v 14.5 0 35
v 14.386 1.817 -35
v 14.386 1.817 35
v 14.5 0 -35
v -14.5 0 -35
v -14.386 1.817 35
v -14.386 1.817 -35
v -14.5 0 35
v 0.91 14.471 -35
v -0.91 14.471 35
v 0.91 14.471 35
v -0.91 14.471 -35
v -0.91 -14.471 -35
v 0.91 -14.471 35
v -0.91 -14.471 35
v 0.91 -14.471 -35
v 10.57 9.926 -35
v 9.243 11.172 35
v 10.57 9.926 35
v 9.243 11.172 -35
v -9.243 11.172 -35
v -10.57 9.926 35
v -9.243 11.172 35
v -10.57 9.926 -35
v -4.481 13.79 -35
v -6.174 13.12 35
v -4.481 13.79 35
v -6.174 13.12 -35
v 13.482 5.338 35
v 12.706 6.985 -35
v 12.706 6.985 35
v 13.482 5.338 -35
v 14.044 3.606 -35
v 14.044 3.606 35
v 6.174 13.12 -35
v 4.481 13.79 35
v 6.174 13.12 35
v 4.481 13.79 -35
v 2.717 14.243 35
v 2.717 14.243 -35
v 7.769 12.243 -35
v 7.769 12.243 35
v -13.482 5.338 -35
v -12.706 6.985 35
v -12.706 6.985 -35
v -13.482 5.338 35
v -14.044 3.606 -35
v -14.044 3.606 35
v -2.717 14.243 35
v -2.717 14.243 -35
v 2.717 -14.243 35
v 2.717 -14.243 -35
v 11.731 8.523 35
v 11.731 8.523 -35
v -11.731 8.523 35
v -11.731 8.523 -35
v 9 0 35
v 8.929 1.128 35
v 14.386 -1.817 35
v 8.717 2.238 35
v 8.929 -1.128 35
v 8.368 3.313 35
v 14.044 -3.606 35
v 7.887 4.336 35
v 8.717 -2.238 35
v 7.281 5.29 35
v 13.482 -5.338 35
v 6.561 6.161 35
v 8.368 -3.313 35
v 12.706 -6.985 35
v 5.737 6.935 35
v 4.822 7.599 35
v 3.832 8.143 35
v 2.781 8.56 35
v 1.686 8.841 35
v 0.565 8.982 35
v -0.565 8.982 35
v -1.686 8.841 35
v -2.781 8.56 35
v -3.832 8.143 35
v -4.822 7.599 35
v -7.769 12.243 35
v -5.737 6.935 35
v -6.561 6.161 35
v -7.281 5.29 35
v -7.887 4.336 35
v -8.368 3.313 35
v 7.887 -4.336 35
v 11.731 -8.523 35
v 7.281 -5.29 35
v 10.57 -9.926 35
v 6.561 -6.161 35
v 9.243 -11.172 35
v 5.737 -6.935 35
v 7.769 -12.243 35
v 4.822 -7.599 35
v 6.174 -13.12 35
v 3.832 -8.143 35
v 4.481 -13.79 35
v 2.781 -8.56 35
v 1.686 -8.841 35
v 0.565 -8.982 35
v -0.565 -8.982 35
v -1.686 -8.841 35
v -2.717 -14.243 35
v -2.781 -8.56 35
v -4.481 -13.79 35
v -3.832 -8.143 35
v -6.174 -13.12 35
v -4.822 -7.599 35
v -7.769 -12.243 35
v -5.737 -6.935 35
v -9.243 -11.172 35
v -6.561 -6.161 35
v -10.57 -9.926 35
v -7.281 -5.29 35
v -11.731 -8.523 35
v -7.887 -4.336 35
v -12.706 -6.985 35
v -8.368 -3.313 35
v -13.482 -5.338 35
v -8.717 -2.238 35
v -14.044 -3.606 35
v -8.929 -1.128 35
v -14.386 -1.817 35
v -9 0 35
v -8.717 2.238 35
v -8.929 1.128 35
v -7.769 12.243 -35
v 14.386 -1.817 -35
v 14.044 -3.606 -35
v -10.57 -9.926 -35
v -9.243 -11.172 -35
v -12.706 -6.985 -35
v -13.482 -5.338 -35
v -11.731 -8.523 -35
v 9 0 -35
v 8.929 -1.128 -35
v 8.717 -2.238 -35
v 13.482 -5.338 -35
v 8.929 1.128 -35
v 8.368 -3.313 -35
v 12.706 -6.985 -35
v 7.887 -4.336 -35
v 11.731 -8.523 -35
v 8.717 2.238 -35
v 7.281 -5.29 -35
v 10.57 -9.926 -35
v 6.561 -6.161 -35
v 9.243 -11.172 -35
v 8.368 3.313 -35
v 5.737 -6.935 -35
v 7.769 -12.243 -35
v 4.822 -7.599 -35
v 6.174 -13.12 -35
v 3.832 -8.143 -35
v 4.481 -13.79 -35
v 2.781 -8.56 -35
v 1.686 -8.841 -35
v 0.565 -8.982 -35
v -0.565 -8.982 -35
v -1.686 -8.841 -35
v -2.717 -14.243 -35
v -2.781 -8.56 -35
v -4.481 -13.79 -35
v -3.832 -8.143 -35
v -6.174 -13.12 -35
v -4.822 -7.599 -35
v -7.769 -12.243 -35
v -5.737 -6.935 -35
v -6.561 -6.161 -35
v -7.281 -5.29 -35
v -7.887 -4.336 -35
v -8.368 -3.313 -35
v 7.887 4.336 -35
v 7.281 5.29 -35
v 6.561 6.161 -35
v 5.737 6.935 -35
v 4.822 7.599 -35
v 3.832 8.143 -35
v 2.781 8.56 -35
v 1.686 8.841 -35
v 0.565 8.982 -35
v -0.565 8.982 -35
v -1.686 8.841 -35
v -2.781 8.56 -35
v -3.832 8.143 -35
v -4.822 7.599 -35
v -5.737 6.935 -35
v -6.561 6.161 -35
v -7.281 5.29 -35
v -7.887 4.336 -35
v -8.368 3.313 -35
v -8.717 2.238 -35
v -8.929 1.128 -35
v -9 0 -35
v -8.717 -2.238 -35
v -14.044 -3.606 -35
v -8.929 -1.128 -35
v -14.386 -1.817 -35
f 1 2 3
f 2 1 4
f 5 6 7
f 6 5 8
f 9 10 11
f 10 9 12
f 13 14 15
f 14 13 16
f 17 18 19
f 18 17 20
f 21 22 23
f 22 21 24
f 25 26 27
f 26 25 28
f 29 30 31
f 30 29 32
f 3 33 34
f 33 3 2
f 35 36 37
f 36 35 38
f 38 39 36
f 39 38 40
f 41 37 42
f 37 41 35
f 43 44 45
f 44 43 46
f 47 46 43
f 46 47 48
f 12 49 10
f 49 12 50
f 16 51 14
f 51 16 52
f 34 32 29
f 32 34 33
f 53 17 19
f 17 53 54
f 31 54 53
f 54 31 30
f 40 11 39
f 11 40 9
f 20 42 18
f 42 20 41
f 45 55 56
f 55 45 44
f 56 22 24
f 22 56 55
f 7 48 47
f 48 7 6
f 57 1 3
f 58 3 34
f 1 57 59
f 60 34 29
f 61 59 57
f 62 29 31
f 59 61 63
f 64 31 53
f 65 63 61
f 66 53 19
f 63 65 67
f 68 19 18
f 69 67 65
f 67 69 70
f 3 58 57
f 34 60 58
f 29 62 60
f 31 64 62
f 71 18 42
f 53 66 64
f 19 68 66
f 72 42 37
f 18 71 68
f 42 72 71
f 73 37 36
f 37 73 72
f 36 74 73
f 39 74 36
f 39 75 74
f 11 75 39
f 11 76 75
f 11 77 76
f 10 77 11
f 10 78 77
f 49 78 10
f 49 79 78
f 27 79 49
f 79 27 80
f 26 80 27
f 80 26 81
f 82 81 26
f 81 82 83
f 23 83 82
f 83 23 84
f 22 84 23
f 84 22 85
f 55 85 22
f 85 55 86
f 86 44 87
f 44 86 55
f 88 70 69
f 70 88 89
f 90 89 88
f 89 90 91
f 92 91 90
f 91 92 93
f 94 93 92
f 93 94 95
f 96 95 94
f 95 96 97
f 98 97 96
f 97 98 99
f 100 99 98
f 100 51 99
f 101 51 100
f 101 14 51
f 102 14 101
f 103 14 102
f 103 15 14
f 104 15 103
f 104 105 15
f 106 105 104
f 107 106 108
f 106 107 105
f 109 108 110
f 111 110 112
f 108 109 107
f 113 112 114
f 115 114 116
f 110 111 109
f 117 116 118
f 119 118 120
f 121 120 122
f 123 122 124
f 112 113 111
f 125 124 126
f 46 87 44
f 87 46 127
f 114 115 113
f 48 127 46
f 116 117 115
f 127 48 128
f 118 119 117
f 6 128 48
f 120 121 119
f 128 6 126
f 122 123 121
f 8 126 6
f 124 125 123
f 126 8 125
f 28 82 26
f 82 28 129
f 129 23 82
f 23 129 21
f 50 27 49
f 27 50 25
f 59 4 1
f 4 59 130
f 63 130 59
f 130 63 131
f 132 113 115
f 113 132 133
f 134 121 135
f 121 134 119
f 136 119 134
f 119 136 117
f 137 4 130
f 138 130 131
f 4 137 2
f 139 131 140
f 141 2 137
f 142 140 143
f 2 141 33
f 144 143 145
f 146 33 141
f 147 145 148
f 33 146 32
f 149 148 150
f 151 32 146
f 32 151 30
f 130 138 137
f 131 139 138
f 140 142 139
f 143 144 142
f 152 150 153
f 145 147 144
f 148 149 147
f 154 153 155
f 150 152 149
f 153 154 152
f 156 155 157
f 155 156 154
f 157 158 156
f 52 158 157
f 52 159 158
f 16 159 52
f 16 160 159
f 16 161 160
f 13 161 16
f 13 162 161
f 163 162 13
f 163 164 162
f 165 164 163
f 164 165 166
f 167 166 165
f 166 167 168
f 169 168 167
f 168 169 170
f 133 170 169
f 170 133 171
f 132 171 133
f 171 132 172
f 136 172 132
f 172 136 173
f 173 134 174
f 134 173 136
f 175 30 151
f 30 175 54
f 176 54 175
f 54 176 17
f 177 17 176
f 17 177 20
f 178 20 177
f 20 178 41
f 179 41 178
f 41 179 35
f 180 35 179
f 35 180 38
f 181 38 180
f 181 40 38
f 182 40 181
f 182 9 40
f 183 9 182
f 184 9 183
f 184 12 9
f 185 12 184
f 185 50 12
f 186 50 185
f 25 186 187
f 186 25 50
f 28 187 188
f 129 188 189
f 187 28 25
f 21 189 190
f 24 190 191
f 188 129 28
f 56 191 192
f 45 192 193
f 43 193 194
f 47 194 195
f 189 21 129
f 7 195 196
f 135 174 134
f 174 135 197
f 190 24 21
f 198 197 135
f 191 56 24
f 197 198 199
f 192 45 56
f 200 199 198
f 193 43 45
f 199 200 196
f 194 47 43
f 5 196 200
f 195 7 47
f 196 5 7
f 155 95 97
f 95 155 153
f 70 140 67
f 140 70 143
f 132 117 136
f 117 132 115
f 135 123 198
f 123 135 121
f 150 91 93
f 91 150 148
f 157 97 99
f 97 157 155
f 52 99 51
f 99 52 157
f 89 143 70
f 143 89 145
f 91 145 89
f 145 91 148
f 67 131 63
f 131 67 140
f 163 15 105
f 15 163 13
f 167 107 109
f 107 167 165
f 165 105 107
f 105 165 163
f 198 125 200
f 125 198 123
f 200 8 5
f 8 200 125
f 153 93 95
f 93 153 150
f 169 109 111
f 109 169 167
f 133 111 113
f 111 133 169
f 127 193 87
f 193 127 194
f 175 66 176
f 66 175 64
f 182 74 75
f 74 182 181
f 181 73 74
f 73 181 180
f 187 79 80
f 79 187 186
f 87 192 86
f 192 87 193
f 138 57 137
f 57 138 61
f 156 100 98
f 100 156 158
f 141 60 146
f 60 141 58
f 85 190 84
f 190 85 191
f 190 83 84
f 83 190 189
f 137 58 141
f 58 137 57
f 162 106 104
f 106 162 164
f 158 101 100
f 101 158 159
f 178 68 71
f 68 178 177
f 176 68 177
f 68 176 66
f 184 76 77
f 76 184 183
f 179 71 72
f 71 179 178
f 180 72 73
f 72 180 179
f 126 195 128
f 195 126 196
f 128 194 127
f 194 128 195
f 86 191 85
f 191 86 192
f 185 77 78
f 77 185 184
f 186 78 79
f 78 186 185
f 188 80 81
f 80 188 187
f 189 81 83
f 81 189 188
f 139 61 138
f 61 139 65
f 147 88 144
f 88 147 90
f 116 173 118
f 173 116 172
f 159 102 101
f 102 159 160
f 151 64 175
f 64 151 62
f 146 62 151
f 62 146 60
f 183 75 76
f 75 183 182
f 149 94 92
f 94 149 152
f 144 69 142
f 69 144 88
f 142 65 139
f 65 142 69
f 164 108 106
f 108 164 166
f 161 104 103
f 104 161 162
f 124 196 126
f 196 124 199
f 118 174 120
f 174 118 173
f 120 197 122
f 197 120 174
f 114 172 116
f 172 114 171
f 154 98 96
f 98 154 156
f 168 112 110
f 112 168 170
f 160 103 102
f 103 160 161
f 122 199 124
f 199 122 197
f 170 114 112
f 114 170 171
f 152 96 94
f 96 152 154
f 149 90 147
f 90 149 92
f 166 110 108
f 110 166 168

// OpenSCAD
$fn = 50;


difference() {
	union() {
		translate(v = [0, 0, -35.0000000000]) {
			cylinder(h = 70, r = 14.5000000000);
		}
	}
	union() {
		translate(v = [0, 0, -100.0000000000]) {
			cylinder(h = 200, r = 9);
		}
	}
}
